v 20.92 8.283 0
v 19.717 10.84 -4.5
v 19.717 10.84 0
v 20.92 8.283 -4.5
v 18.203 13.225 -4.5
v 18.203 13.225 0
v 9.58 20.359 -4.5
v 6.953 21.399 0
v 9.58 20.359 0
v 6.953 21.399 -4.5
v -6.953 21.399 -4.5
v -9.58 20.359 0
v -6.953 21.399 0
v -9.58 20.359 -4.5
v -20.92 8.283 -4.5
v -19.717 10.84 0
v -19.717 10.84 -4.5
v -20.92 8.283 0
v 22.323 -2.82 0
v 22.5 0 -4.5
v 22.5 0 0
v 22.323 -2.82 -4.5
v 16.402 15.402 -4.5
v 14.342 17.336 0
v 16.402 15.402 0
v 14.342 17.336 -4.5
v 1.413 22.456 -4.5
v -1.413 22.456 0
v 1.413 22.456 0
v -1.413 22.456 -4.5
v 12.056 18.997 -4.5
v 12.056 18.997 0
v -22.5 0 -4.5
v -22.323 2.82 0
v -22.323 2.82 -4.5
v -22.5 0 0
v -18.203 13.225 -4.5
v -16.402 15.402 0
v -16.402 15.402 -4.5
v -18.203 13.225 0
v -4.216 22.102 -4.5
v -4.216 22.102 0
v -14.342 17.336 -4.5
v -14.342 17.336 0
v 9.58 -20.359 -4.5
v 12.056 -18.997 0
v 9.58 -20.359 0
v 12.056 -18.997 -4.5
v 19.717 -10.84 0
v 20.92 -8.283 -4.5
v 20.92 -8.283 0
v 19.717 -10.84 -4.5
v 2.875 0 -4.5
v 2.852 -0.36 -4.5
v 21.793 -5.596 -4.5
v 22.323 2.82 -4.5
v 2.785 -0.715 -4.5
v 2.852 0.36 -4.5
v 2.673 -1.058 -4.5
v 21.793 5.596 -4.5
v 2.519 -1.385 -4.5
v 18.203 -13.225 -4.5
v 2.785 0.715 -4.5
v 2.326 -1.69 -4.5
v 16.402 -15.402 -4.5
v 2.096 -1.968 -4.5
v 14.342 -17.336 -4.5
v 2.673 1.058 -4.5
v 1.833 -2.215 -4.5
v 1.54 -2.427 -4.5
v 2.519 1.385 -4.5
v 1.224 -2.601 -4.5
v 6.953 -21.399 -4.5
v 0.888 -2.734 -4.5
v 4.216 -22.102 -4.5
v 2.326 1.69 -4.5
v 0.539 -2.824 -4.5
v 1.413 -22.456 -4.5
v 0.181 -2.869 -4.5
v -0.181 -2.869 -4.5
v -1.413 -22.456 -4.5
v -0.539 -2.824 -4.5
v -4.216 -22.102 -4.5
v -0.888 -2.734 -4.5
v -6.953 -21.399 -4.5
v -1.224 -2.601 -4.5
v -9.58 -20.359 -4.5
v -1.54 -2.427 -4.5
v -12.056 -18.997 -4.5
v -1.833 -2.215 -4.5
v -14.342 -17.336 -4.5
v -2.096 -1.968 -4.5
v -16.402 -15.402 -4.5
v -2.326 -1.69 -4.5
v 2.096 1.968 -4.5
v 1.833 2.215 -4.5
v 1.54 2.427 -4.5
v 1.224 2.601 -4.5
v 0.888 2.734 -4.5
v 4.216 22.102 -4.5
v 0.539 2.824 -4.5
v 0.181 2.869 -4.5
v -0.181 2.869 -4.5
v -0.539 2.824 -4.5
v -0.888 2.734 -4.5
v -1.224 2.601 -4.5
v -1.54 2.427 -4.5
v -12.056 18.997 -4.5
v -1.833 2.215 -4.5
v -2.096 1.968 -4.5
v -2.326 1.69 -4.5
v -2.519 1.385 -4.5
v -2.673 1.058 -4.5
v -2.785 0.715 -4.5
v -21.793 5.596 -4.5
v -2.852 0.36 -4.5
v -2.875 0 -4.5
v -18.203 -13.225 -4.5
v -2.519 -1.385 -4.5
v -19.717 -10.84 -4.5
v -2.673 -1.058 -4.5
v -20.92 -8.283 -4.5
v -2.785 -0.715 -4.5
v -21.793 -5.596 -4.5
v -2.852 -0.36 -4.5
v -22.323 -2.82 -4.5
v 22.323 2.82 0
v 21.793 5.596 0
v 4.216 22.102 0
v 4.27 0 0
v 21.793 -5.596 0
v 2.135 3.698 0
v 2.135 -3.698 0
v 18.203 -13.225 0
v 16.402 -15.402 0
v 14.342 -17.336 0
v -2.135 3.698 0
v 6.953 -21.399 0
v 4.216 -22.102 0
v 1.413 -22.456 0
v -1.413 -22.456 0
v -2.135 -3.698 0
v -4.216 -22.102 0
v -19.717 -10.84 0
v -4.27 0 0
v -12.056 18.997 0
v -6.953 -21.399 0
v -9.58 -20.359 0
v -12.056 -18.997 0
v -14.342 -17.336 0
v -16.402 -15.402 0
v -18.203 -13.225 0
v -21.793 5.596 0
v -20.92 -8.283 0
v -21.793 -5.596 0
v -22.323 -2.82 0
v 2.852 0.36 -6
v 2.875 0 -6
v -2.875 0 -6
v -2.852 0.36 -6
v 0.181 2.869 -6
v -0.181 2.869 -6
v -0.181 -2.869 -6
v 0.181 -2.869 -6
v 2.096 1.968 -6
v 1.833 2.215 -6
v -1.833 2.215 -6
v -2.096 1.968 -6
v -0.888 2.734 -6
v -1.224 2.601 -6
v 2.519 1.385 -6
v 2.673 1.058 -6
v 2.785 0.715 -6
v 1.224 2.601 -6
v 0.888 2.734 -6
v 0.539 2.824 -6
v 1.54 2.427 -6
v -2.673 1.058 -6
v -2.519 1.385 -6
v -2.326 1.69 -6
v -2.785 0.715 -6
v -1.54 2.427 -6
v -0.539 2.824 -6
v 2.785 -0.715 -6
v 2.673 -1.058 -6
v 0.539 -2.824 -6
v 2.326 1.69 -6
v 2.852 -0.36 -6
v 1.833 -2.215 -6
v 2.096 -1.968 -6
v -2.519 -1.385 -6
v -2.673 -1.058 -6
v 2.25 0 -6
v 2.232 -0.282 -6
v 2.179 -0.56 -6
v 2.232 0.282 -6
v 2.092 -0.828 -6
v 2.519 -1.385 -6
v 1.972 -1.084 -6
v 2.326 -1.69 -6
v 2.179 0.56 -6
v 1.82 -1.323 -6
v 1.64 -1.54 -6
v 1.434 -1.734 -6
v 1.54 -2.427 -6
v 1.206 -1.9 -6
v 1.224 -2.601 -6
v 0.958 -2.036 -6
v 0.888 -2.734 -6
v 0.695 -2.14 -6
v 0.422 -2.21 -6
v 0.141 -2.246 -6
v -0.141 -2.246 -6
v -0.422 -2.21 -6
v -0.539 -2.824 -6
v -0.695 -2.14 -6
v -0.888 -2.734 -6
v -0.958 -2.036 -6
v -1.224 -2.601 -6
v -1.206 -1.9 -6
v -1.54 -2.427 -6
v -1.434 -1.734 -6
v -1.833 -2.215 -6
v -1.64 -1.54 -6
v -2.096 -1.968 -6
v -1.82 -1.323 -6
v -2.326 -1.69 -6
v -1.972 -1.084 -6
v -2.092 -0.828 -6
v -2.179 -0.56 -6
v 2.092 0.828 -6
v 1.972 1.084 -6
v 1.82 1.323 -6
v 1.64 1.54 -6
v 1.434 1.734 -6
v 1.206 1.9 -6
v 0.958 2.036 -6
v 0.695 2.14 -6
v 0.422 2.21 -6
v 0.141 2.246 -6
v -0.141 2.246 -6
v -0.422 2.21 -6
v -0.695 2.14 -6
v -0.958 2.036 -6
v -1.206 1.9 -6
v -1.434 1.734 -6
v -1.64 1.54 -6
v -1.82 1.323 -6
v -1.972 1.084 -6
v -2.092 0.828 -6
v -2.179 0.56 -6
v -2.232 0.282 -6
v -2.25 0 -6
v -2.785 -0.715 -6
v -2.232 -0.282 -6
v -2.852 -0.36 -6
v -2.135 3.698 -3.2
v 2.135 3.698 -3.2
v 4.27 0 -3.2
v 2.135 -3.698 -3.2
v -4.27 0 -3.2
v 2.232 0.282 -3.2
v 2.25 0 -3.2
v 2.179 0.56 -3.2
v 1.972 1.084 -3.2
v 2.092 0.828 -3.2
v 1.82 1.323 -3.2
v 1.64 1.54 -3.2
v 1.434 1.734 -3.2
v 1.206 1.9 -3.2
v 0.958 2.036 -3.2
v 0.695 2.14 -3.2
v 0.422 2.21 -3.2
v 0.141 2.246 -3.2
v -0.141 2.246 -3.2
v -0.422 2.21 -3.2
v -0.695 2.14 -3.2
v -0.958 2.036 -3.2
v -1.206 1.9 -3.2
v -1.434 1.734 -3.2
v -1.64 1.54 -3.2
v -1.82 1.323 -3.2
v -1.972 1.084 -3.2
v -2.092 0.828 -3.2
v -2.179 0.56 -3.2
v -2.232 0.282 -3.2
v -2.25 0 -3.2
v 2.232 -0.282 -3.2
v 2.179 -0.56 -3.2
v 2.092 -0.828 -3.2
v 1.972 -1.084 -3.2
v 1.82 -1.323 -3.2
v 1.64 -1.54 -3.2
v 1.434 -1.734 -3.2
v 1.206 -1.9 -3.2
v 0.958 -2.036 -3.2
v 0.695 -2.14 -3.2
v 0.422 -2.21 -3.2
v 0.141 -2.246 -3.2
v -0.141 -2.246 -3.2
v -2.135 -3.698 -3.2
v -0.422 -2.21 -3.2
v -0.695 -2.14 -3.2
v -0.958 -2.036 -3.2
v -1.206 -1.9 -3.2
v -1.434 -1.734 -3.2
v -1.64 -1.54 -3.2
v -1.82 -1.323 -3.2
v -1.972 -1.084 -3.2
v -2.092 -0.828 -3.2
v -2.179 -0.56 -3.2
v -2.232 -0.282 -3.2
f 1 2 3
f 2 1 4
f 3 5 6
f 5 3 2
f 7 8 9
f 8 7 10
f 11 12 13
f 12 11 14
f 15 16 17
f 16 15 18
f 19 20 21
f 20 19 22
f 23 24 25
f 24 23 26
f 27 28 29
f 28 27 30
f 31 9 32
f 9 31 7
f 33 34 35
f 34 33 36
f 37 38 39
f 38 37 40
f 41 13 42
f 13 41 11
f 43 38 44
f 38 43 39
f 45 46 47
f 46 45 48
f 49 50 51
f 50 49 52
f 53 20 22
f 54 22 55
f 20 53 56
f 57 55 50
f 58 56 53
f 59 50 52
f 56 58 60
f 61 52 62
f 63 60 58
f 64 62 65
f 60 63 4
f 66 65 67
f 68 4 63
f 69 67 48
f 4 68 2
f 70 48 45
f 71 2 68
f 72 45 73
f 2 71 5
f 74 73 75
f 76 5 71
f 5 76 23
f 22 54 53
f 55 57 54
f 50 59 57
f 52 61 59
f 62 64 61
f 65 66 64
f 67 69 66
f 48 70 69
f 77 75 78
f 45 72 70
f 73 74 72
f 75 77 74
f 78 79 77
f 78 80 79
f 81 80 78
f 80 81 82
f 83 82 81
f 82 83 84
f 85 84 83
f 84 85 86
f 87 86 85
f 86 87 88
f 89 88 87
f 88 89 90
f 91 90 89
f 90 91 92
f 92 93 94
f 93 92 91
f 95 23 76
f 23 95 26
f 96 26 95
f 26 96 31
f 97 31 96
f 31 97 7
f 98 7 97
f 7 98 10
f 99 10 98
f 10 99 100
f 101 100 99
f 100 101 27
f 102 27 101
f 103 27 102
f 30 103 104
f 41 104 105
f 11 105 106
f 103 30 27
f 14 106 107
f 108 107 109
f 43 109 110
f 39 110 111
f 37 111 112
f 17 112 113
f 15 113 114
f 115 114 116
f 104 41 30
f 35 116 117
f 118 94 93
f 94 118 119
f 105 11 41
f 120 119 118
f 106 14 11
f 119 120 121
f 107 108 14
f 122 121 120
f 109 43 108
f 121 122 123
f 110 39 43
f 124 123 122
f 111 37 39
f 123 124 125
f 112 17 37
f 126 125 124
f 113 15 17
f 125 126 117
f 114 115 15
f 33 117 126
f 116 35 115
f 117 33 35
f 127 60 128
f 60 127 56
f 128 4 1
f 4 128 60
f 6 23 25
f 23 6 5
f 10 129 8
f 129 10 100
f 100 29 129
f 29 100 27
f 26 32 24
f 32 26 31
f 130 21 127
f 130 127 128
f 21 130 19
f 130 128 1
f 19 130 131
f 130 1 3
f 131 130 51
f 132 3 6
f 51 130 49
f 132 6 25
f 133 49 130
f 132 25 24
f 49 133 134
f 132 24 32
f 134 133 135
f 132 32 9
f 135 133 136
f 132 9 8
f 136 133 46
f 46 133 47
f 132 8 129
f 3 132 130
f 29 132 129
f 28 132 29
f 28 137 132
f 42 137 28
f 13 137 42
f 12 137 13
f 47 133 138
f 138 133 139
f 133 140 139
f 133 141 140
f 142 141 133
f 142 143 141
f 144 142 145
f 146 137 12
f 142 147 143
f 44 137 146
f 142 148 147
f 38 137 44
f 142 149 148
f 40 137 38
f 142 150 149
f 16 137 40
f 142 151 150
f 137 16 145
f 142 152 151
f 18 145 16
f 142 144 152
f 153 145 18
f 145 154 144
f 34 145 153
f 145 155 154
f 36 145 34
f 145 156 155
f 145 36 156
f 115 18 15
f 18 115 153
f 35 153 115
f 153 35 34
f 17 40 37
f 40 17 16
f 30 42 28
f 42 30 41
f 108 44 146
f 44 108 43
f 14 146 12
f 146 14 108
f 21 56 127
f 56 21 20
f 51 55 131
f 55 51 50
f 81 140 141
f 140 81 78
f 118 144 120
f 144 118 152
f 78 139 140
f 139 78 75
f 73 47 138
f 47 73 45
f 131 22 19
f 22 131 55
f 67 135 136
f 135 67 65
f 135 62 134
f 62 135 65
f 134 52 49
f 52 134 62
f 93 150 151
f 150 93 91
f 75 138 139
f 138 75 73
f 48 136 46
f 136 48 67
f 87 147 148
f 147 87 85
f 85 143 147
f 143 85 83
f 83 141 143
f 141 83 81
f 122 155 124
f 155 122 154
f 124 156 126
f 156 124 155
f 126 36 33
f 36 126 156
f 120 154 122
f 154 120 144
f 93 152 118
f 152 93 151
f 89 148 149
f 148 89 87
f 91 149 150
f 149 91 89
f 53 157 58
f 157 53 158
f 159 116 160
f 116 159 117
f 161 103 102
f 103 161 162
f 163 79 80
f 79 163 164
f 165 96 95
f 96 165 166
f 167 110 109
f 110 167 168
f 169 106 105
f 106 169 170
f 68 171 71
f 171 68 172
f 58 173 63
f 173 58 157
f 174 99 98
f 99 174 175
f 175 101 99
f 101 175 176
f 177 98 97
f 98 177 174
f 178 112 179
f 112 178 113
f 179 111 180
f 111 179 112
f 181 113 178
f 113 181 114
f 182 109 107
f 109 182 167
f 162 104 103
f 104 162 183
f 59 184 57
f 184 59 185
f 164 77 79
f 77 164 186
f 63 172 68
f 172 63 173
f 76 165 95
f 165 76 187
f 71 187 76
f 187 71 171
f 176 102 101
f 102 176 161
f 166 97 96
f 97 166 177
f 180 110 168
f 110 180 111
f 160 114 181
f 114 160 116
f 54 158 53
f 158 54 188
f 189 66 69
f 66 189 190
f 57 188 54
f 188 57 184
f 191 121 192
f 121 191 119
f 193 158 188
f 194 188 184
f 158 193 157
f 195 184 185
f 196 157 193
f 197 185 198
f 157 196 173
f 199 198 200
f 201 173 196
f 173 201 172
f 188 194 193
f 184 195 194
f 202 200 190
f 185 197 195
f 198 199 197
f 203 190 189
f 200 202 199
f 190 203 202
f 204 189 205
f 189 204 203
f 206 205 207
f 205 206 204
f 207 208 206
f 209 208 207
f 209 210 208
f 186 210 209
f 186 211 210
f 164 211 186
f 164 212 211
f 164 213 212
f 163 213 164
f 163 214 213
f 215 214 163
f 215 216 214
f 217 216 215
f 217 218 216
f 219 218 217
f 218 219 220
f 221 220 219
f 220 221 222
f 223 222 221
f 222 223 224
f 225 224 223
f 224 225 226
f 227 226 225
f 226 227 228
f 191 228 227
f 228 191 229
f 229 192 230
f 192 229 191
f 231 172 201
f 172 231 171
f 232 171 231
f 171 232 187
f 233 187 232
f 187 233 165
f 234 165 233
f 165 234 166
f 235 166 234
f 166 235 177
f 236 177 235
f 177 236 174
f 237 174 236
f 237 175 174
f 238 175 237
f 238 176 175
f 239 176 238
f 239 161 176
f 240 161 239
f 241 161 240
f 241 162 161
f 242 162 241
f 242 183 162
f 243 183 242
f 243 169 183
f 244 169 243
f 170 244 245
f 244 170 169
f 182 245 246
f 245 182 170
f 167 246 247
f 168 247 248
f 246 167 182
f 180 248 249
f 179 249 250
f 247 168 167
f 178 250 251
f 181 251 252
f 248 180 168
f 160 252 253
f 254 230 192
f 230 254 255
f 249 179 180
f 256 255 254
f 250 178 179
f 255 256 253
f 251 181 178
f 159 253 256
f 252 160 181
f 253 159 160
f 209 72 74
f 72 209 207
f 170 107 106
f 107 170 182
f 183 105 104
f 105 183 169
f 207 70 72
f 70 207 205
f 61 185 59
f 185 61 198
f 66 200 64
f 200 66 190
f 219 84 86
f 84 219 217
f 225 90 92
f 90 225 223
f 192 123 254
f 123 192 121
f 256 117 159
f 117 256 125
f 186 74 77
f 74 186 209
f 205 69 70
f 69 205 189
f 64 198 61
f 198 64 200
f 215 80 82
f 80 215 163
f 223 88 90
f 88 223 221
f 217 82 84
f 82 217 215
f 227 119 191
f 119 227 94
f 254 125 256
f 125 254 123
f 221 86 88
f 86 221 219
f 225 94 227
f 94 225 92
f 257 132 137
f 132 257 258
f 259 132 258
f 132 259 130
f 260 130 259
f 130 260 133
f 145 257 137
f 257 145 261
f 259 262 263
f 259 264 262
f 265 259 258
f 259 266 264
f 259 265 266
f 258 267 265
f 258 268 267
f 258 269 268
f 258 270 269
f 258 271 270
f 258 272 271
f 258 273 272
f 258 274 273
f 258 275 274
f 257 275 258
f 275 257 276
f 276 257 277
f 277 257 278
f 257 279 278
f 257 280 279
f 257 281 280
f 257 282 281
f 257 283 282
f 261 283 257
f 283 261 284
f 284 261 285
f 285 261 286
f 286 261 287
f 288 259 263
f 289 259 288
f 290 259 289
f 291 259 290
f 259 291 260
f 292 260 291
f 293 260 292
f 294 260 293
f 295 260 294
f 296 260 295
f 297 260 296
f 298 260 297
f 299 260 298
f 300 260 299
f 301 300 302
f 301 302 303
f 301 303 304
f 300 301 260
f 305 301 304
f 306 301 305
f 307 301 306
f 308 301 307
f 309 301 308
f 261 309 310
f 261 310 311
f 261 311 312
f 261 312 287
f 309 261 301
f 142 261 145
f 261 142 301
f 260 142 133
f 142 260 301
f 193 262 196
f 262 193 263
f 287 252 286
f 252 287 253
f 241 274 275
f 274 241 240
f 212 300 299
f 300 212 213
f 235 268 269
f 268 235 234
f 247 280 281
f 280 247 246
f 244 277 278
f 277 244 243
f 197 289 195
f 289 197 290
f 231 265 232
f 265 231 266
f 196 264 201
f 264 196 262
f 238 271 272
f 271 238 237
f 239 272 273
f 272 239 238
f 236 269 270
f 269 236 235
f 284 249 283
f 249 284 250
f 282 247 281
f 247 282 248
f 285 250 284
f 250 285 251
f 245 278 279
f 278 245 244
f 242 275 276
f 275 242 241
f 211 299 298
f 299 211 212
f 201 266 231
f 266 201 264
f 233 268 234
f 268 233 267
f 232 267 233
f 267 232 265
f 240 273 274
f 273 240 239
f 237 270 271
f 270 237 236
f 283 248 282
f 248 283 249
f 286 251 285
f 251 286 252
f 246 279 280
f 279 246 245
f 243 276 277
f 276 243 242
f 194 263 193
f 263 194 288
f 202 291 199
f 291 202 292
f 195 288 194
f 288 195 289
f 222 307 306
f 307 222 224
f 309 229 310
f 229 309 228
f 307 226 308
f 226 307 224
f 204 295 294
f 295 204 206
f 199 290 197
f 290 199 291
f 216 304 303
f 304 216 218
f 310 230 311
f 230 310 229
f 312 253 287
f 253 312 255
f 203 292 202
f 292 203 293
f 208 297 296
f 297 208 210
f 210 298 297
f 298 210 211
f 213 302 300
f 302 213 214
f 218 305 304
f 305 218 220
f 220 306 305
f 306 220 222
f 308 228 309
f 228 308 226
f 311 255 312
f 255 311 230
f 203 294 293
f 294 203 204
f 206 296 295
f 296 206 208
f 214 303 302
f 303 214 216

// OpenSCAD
$fn = 50;

difference() {
	union() {
		translate(v = [0, 0, -4.5]) {
			cylinder(h = 4.5, r = 22.5);
		}
		#translate(v = [0, 0, -6.0]) {
			cylinder(h = 6, r = 2.875);
		}
	}
	union() {
		translate(v = [0, 0, 0]) {
			rotate(a = [0, 0, 0]) {
				difference() {
					union() {
						translate(v = [0, 0, -3.2]) {
							linear_extrude(height = 3.2) {
								polygon(points = [[4.2698, 0.0], [2.1349000000000005, 3.697755269078796], [-2.134899999999999, 3.6977552690787965], [-4.2698, 5.228996902999369e-16], [-2.134900000000002, -3.6977552690787956], [2.1348999999999974, -3.697755269078798]]);
							}
						}
					}
					union();
				}
			}
		}
		#translate(v = [0, 0, -100.0]) {
			cylinder(h = 200, r = 2.25);
		}
	}
}
